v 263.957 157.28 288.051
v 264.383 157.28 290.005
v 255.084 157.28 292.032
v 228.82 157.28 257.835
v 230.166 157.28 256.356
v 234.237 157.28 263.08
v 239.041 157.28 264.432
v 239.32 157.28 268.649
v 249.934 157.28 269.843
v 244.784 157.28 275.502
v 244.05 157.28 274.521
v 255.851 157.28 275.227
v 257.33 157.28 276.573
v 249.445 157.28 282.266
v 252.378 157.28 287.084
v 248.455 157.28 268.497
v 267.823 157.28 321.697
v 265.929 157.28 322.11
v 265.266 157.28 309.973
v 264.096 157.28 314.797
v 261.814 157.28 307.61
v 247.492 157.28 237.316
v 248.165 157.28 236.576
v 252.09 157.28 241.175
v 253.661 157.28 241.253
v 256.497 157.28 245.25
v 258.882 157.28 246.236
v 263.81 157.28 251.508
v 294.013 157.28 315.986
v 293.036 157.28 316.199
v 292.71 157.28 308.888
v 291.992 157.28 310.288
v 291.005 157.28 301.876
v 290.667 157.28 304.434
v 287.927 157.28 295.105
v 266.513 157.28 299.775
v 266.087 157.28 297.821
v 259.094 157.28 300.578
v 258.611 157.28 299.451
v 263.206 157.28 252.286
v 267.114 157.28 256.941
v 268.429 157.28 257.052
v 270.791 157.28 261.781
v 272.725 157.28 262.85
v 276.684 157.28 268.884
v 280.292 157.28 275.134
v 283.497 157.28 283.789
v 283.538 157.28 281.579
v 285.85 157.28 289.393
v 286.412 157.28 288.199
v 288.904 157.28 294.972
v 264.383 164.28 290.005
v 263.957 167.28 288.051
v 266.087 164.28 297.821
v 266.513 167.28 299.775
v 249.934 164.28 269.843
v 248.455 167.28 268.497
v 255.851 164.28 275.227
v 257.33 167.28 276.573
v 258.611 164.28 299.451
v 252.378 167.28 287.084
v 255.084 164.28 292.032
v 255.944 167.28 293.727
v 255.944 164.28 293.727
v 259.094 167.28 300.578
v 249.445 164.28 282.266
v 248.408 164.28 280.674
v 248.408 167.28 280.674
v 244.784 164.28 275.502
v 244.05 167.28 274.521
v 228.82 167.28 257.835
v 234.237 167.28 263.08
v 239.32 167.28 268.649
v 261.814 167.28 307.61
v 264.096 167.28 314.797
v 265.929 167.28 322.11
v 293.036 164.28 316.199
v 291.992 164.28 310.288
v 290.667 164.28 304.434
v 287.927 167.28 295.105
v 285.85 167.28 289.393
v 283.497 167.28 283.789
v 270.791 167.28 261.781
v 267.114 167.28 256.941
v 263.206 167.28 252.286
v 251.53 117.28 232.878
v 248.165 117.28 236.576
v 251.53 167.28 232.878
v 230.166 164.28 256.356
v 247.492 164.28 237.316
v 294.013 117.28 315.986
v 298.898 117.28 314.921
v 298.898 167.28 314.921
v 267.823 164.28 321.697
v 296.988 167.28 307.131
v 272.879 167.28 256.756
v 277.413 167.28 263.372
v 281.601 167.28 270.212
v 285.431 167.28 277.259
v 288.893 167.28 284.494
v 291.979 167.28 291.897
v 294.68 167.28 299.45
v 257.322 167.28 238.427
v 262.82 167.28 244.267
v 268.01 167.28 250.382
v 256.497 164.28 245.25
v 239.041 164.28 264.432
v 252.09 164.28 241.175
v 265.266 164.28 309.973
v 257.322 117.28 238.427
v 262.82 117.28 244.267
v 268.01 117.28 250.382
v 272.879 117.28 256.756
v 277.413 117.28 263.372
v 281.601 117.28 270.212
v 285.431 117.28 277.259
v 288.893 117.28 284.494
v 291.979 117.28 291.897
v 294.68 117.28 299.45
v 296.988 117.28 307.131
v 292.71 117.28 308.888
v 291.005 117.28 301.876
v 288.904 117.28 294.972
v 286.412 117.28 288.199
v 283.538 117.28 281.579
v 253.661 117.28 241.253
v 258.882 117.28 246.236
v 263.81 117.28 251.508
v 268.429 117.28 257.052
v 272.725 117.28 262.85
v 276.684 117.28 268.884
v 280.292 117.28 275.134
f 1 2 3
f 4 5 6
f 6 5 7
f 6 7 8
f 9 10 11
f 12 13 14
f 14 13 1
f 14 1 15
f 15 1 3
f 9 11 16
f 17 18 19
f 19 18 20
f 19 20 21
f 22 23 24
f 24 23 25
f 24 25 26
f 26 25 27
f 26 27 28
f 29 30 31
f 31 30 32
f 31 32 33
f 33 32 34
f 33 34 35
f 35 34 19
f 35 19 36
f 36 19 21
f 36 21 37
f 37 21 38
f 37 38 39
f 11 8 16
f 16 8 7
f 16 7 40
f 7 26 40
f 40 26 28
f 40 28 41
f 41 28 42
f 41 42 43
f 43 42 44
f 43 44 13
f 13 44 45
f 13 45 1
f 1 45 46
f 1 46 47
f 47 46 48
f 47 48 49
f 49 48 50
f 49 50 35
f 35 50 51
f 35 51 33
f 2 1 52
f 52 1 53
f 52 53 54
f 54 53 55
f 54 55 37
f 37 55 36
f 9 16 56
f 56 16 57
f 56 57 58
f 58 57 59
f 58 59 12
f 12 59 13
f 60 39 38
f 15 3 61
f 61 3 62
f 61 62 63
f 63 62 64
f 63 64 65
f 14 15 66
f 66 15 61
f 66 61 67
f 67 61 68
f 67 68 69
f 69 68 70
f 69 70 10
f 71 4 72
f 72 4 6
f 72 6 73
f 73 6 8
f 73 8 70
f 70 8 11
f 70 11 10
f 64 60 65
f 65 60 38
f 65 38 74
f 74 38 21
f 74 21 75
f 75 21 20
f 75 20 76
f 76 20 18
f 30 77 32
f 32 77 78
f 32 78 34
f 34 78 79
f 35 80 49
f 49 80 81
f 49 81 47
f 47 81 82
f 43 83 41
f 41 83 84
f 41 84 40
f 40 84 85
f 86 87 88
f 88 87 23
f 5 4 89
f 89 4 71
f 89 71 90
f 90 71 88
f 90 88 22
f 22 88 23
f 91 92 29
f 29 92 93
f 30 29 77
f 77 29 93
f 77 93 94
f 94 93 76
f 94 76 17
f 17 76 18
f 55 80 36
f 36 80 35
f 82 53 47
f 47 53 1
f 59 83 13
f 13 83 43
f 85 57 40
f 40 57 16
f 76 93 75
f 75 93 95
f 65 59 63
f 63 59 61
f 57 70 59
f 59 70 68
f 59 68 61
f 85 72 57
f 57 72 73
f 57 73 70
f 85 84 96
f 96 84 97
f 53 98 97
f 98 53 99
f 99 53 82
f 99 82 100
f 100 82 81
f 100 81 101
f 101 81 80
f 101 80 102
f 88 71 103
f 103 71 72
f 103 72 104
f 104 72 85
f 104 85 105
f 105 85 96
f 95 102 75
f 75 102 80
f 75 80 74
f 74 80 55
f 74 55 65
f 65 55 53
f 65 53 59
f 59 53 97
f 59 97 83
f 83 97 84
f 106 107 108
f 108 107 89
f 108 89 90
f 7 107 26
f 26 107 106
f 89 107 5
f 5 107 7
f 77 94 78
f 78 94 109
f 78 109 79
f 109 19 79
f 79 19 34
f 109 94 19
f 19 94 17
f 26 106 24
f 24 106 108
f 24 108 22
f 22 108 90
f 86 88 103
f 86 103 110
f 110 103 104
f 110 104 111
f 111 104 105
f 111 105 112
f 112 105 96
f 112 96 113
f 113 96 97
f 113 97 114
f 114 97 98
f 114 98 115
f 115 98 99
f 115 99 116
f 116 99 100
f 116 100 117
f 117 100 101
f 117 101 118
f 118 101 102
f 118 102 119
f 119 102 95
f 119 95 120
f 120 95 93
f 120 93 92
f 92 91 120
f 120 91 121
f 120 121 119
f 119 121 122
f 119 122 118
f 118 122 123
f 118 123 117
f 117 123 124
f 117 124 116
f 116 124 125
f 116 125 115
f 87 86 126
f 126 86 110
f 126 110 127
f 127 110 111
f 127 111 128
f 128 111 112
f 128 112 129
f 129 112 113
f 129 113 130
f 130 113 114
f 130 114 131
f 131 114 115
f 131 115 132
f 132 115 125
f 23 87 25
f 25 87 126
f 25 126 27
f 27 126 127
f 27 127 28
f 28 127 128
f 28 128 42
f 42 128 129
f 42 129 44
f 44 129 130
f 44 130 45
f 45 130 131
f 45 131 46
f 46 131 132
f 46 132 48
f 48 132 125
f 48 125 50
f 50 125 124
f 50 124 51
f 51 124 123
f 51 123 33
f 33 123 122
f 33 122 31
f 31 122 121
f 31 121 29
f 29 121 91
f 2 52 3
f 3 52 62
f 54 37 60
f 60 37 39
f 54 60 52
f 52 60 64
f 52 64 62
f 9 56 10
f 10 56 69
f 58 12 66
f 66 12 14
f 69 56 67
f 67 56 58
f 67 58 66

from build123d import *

# Parameters (mm, degrees)
BOSS_EXTRUDE1_DEPTH = 10
CUT_EXTRUDE1_DEPTH  = 7
BOSS_EXTRUDE2_START = -50
BOSS_EXTRUDE2_DEPTH = 50
CUT_EXTRUDE2_DEPTH  = 40
CUT_EXTRUDE3_DEPTH  = 7


with BuildPart() as part:
    # Sketch1 → Boss-Extrude1 (new body)
    with BuildSketch(Plane(origin=(0, 157.279655443, 0), x_dir=(1, 0, 0), z_dir=(0, 1, 0))):
        with BuildLine():
            Line((293.03566289, -316.199227389), (265.928972249, -322.110427169))
            ThreePointArc((265.928972249, -322.110427169), (252.377607393, -287.084094578), (228.819595995, -257.835102061))
            Line((228.819595995, -257.835102061), (247.492190492, -237.315619243))
            ThreePointArc((247.492190492, -237.315619243), (255.674613952, -244.45932236), (263.205967645, -252.286407351))
            Line((263.205967645, -252.286407351), (248.454819921, -268.496576877))
            Line((248.454819921, -268.496576877), (257.330112784, -276.573035048))
            Line((257.330112784, -276.573035048), (270.790876402, -261.780880276))
            ThreePointArc((270.790876402, -261.780880276), (277.704929826, -272.461358153), (283.49746828, -283.789342999))
            Line((283.49746828, -283.789342999), (263.956704662, -288.050628861))
            Line((263.956704662, -288.050628861), (266.513476179, -299.775087033))
            Line((266.513476179, -299.775087033), (287.92746865, -295.105303131))
            ThreePointArc((287.92746865, -295.105303131), (290.940246243, -305.54118925), (293.03566289, -316.199227389))
        make_face()
    extrude(amount=BOSS_EXTRUDE1_DEPTH)

    # Sketch2 → Cut-Extrude1 (cut)
    with BuildSketch(Plane(origin=(0, 157.279655443, 0), x_dir=(1, 0, 0), z_dir=(0, 1, 0))):
        Polygon((267.822908947, -321.697413337), (265.266137429, -309.972955165), (295.554321038, -303.367962079), (297.930502387, -315.13180184), align=None)
        Polygon((251.029855966, -233.428046687), (230.165672357, -256.355886583), (239.04096522, -264.432344755), (259.905148829, -241.504504858), align=None)
    extrude(amount=CUT_EXTRUDE1_DEPTH, mode=Mode.SUBTRACT)

    # Sketch3 → Boss-Extrude2 (add)
    with BuildSketch(Plane(origin=(0, 167.279655443, 0), x_dir=(1, 0, 0), z_dir=(0, 1, 0)).offset(BOSS_EXTRUDE2_START)):
        with BuildLine():
            Line((293.03566289, -316.199227389), (298.897891976, -314.920841631))
            ThreePointArc((298.897891976, -314.920841631), (281.600541129, -270.212225919), (251.530419577, -232.877972811))
            Line((251.530419577, -232.877972811), (247.492190492, -237.315619243))
            ThreePointArc((247.492190492, -237.315619243), (277.704929826, -272.461358153), (293.03566289, -316.199227389))
        make_face()
    extrude(amount=BOSS_EXTRUDE2_DEPTH)

    # Sketch4 → Cut-Extrude2 (cut)
    with BuildSketch(Plane.XZ.offset(-117.279655443)):
        with BuildLine():
            Line((293.03566289, 316.199227389), (294.012701071, 315.986163096))
            ThreePointArc((294.012701071, 315.986163096), (278.53244595, 271.983591496), (248.165228673, 236.576011504))
            Line((248.165228673, 236.576011504), (247.492190492, 237.315619243))
            ThreePointArc((247.492190492, 237.315619243), (277.704929826, 272.461358153), (293.03566289, 316.199227389))
        make_face()
    extrude(amount=-CUT_EXTRUDE2_DEPTH, mode=Mode.SUBTRACT)

    # Sketch5 → Cut-Extrude3 (cut)
    with BuildSketch(Plane(origin=(0, 157.279655443, 0), x_dir=(1, 0, 0), z_dir=(0, 1, 0))):
        Polygon((249.934035398, -269.842653239), (255.850897307, -275.226958686), (249.120515497, -282.623036072), (243.203653588, -277.238730625), align=None)
        Polygon((264.382833248, -290.004705223), (266.087347593, -297.821010671), (256.316965783, -299.951653602), (254.612451439, -292.135348154), align=None)
    extrude(amount=CUT_EXTRUDE3_DEPTH, mode=Mode.SUBTRACT)


solid = part.part
